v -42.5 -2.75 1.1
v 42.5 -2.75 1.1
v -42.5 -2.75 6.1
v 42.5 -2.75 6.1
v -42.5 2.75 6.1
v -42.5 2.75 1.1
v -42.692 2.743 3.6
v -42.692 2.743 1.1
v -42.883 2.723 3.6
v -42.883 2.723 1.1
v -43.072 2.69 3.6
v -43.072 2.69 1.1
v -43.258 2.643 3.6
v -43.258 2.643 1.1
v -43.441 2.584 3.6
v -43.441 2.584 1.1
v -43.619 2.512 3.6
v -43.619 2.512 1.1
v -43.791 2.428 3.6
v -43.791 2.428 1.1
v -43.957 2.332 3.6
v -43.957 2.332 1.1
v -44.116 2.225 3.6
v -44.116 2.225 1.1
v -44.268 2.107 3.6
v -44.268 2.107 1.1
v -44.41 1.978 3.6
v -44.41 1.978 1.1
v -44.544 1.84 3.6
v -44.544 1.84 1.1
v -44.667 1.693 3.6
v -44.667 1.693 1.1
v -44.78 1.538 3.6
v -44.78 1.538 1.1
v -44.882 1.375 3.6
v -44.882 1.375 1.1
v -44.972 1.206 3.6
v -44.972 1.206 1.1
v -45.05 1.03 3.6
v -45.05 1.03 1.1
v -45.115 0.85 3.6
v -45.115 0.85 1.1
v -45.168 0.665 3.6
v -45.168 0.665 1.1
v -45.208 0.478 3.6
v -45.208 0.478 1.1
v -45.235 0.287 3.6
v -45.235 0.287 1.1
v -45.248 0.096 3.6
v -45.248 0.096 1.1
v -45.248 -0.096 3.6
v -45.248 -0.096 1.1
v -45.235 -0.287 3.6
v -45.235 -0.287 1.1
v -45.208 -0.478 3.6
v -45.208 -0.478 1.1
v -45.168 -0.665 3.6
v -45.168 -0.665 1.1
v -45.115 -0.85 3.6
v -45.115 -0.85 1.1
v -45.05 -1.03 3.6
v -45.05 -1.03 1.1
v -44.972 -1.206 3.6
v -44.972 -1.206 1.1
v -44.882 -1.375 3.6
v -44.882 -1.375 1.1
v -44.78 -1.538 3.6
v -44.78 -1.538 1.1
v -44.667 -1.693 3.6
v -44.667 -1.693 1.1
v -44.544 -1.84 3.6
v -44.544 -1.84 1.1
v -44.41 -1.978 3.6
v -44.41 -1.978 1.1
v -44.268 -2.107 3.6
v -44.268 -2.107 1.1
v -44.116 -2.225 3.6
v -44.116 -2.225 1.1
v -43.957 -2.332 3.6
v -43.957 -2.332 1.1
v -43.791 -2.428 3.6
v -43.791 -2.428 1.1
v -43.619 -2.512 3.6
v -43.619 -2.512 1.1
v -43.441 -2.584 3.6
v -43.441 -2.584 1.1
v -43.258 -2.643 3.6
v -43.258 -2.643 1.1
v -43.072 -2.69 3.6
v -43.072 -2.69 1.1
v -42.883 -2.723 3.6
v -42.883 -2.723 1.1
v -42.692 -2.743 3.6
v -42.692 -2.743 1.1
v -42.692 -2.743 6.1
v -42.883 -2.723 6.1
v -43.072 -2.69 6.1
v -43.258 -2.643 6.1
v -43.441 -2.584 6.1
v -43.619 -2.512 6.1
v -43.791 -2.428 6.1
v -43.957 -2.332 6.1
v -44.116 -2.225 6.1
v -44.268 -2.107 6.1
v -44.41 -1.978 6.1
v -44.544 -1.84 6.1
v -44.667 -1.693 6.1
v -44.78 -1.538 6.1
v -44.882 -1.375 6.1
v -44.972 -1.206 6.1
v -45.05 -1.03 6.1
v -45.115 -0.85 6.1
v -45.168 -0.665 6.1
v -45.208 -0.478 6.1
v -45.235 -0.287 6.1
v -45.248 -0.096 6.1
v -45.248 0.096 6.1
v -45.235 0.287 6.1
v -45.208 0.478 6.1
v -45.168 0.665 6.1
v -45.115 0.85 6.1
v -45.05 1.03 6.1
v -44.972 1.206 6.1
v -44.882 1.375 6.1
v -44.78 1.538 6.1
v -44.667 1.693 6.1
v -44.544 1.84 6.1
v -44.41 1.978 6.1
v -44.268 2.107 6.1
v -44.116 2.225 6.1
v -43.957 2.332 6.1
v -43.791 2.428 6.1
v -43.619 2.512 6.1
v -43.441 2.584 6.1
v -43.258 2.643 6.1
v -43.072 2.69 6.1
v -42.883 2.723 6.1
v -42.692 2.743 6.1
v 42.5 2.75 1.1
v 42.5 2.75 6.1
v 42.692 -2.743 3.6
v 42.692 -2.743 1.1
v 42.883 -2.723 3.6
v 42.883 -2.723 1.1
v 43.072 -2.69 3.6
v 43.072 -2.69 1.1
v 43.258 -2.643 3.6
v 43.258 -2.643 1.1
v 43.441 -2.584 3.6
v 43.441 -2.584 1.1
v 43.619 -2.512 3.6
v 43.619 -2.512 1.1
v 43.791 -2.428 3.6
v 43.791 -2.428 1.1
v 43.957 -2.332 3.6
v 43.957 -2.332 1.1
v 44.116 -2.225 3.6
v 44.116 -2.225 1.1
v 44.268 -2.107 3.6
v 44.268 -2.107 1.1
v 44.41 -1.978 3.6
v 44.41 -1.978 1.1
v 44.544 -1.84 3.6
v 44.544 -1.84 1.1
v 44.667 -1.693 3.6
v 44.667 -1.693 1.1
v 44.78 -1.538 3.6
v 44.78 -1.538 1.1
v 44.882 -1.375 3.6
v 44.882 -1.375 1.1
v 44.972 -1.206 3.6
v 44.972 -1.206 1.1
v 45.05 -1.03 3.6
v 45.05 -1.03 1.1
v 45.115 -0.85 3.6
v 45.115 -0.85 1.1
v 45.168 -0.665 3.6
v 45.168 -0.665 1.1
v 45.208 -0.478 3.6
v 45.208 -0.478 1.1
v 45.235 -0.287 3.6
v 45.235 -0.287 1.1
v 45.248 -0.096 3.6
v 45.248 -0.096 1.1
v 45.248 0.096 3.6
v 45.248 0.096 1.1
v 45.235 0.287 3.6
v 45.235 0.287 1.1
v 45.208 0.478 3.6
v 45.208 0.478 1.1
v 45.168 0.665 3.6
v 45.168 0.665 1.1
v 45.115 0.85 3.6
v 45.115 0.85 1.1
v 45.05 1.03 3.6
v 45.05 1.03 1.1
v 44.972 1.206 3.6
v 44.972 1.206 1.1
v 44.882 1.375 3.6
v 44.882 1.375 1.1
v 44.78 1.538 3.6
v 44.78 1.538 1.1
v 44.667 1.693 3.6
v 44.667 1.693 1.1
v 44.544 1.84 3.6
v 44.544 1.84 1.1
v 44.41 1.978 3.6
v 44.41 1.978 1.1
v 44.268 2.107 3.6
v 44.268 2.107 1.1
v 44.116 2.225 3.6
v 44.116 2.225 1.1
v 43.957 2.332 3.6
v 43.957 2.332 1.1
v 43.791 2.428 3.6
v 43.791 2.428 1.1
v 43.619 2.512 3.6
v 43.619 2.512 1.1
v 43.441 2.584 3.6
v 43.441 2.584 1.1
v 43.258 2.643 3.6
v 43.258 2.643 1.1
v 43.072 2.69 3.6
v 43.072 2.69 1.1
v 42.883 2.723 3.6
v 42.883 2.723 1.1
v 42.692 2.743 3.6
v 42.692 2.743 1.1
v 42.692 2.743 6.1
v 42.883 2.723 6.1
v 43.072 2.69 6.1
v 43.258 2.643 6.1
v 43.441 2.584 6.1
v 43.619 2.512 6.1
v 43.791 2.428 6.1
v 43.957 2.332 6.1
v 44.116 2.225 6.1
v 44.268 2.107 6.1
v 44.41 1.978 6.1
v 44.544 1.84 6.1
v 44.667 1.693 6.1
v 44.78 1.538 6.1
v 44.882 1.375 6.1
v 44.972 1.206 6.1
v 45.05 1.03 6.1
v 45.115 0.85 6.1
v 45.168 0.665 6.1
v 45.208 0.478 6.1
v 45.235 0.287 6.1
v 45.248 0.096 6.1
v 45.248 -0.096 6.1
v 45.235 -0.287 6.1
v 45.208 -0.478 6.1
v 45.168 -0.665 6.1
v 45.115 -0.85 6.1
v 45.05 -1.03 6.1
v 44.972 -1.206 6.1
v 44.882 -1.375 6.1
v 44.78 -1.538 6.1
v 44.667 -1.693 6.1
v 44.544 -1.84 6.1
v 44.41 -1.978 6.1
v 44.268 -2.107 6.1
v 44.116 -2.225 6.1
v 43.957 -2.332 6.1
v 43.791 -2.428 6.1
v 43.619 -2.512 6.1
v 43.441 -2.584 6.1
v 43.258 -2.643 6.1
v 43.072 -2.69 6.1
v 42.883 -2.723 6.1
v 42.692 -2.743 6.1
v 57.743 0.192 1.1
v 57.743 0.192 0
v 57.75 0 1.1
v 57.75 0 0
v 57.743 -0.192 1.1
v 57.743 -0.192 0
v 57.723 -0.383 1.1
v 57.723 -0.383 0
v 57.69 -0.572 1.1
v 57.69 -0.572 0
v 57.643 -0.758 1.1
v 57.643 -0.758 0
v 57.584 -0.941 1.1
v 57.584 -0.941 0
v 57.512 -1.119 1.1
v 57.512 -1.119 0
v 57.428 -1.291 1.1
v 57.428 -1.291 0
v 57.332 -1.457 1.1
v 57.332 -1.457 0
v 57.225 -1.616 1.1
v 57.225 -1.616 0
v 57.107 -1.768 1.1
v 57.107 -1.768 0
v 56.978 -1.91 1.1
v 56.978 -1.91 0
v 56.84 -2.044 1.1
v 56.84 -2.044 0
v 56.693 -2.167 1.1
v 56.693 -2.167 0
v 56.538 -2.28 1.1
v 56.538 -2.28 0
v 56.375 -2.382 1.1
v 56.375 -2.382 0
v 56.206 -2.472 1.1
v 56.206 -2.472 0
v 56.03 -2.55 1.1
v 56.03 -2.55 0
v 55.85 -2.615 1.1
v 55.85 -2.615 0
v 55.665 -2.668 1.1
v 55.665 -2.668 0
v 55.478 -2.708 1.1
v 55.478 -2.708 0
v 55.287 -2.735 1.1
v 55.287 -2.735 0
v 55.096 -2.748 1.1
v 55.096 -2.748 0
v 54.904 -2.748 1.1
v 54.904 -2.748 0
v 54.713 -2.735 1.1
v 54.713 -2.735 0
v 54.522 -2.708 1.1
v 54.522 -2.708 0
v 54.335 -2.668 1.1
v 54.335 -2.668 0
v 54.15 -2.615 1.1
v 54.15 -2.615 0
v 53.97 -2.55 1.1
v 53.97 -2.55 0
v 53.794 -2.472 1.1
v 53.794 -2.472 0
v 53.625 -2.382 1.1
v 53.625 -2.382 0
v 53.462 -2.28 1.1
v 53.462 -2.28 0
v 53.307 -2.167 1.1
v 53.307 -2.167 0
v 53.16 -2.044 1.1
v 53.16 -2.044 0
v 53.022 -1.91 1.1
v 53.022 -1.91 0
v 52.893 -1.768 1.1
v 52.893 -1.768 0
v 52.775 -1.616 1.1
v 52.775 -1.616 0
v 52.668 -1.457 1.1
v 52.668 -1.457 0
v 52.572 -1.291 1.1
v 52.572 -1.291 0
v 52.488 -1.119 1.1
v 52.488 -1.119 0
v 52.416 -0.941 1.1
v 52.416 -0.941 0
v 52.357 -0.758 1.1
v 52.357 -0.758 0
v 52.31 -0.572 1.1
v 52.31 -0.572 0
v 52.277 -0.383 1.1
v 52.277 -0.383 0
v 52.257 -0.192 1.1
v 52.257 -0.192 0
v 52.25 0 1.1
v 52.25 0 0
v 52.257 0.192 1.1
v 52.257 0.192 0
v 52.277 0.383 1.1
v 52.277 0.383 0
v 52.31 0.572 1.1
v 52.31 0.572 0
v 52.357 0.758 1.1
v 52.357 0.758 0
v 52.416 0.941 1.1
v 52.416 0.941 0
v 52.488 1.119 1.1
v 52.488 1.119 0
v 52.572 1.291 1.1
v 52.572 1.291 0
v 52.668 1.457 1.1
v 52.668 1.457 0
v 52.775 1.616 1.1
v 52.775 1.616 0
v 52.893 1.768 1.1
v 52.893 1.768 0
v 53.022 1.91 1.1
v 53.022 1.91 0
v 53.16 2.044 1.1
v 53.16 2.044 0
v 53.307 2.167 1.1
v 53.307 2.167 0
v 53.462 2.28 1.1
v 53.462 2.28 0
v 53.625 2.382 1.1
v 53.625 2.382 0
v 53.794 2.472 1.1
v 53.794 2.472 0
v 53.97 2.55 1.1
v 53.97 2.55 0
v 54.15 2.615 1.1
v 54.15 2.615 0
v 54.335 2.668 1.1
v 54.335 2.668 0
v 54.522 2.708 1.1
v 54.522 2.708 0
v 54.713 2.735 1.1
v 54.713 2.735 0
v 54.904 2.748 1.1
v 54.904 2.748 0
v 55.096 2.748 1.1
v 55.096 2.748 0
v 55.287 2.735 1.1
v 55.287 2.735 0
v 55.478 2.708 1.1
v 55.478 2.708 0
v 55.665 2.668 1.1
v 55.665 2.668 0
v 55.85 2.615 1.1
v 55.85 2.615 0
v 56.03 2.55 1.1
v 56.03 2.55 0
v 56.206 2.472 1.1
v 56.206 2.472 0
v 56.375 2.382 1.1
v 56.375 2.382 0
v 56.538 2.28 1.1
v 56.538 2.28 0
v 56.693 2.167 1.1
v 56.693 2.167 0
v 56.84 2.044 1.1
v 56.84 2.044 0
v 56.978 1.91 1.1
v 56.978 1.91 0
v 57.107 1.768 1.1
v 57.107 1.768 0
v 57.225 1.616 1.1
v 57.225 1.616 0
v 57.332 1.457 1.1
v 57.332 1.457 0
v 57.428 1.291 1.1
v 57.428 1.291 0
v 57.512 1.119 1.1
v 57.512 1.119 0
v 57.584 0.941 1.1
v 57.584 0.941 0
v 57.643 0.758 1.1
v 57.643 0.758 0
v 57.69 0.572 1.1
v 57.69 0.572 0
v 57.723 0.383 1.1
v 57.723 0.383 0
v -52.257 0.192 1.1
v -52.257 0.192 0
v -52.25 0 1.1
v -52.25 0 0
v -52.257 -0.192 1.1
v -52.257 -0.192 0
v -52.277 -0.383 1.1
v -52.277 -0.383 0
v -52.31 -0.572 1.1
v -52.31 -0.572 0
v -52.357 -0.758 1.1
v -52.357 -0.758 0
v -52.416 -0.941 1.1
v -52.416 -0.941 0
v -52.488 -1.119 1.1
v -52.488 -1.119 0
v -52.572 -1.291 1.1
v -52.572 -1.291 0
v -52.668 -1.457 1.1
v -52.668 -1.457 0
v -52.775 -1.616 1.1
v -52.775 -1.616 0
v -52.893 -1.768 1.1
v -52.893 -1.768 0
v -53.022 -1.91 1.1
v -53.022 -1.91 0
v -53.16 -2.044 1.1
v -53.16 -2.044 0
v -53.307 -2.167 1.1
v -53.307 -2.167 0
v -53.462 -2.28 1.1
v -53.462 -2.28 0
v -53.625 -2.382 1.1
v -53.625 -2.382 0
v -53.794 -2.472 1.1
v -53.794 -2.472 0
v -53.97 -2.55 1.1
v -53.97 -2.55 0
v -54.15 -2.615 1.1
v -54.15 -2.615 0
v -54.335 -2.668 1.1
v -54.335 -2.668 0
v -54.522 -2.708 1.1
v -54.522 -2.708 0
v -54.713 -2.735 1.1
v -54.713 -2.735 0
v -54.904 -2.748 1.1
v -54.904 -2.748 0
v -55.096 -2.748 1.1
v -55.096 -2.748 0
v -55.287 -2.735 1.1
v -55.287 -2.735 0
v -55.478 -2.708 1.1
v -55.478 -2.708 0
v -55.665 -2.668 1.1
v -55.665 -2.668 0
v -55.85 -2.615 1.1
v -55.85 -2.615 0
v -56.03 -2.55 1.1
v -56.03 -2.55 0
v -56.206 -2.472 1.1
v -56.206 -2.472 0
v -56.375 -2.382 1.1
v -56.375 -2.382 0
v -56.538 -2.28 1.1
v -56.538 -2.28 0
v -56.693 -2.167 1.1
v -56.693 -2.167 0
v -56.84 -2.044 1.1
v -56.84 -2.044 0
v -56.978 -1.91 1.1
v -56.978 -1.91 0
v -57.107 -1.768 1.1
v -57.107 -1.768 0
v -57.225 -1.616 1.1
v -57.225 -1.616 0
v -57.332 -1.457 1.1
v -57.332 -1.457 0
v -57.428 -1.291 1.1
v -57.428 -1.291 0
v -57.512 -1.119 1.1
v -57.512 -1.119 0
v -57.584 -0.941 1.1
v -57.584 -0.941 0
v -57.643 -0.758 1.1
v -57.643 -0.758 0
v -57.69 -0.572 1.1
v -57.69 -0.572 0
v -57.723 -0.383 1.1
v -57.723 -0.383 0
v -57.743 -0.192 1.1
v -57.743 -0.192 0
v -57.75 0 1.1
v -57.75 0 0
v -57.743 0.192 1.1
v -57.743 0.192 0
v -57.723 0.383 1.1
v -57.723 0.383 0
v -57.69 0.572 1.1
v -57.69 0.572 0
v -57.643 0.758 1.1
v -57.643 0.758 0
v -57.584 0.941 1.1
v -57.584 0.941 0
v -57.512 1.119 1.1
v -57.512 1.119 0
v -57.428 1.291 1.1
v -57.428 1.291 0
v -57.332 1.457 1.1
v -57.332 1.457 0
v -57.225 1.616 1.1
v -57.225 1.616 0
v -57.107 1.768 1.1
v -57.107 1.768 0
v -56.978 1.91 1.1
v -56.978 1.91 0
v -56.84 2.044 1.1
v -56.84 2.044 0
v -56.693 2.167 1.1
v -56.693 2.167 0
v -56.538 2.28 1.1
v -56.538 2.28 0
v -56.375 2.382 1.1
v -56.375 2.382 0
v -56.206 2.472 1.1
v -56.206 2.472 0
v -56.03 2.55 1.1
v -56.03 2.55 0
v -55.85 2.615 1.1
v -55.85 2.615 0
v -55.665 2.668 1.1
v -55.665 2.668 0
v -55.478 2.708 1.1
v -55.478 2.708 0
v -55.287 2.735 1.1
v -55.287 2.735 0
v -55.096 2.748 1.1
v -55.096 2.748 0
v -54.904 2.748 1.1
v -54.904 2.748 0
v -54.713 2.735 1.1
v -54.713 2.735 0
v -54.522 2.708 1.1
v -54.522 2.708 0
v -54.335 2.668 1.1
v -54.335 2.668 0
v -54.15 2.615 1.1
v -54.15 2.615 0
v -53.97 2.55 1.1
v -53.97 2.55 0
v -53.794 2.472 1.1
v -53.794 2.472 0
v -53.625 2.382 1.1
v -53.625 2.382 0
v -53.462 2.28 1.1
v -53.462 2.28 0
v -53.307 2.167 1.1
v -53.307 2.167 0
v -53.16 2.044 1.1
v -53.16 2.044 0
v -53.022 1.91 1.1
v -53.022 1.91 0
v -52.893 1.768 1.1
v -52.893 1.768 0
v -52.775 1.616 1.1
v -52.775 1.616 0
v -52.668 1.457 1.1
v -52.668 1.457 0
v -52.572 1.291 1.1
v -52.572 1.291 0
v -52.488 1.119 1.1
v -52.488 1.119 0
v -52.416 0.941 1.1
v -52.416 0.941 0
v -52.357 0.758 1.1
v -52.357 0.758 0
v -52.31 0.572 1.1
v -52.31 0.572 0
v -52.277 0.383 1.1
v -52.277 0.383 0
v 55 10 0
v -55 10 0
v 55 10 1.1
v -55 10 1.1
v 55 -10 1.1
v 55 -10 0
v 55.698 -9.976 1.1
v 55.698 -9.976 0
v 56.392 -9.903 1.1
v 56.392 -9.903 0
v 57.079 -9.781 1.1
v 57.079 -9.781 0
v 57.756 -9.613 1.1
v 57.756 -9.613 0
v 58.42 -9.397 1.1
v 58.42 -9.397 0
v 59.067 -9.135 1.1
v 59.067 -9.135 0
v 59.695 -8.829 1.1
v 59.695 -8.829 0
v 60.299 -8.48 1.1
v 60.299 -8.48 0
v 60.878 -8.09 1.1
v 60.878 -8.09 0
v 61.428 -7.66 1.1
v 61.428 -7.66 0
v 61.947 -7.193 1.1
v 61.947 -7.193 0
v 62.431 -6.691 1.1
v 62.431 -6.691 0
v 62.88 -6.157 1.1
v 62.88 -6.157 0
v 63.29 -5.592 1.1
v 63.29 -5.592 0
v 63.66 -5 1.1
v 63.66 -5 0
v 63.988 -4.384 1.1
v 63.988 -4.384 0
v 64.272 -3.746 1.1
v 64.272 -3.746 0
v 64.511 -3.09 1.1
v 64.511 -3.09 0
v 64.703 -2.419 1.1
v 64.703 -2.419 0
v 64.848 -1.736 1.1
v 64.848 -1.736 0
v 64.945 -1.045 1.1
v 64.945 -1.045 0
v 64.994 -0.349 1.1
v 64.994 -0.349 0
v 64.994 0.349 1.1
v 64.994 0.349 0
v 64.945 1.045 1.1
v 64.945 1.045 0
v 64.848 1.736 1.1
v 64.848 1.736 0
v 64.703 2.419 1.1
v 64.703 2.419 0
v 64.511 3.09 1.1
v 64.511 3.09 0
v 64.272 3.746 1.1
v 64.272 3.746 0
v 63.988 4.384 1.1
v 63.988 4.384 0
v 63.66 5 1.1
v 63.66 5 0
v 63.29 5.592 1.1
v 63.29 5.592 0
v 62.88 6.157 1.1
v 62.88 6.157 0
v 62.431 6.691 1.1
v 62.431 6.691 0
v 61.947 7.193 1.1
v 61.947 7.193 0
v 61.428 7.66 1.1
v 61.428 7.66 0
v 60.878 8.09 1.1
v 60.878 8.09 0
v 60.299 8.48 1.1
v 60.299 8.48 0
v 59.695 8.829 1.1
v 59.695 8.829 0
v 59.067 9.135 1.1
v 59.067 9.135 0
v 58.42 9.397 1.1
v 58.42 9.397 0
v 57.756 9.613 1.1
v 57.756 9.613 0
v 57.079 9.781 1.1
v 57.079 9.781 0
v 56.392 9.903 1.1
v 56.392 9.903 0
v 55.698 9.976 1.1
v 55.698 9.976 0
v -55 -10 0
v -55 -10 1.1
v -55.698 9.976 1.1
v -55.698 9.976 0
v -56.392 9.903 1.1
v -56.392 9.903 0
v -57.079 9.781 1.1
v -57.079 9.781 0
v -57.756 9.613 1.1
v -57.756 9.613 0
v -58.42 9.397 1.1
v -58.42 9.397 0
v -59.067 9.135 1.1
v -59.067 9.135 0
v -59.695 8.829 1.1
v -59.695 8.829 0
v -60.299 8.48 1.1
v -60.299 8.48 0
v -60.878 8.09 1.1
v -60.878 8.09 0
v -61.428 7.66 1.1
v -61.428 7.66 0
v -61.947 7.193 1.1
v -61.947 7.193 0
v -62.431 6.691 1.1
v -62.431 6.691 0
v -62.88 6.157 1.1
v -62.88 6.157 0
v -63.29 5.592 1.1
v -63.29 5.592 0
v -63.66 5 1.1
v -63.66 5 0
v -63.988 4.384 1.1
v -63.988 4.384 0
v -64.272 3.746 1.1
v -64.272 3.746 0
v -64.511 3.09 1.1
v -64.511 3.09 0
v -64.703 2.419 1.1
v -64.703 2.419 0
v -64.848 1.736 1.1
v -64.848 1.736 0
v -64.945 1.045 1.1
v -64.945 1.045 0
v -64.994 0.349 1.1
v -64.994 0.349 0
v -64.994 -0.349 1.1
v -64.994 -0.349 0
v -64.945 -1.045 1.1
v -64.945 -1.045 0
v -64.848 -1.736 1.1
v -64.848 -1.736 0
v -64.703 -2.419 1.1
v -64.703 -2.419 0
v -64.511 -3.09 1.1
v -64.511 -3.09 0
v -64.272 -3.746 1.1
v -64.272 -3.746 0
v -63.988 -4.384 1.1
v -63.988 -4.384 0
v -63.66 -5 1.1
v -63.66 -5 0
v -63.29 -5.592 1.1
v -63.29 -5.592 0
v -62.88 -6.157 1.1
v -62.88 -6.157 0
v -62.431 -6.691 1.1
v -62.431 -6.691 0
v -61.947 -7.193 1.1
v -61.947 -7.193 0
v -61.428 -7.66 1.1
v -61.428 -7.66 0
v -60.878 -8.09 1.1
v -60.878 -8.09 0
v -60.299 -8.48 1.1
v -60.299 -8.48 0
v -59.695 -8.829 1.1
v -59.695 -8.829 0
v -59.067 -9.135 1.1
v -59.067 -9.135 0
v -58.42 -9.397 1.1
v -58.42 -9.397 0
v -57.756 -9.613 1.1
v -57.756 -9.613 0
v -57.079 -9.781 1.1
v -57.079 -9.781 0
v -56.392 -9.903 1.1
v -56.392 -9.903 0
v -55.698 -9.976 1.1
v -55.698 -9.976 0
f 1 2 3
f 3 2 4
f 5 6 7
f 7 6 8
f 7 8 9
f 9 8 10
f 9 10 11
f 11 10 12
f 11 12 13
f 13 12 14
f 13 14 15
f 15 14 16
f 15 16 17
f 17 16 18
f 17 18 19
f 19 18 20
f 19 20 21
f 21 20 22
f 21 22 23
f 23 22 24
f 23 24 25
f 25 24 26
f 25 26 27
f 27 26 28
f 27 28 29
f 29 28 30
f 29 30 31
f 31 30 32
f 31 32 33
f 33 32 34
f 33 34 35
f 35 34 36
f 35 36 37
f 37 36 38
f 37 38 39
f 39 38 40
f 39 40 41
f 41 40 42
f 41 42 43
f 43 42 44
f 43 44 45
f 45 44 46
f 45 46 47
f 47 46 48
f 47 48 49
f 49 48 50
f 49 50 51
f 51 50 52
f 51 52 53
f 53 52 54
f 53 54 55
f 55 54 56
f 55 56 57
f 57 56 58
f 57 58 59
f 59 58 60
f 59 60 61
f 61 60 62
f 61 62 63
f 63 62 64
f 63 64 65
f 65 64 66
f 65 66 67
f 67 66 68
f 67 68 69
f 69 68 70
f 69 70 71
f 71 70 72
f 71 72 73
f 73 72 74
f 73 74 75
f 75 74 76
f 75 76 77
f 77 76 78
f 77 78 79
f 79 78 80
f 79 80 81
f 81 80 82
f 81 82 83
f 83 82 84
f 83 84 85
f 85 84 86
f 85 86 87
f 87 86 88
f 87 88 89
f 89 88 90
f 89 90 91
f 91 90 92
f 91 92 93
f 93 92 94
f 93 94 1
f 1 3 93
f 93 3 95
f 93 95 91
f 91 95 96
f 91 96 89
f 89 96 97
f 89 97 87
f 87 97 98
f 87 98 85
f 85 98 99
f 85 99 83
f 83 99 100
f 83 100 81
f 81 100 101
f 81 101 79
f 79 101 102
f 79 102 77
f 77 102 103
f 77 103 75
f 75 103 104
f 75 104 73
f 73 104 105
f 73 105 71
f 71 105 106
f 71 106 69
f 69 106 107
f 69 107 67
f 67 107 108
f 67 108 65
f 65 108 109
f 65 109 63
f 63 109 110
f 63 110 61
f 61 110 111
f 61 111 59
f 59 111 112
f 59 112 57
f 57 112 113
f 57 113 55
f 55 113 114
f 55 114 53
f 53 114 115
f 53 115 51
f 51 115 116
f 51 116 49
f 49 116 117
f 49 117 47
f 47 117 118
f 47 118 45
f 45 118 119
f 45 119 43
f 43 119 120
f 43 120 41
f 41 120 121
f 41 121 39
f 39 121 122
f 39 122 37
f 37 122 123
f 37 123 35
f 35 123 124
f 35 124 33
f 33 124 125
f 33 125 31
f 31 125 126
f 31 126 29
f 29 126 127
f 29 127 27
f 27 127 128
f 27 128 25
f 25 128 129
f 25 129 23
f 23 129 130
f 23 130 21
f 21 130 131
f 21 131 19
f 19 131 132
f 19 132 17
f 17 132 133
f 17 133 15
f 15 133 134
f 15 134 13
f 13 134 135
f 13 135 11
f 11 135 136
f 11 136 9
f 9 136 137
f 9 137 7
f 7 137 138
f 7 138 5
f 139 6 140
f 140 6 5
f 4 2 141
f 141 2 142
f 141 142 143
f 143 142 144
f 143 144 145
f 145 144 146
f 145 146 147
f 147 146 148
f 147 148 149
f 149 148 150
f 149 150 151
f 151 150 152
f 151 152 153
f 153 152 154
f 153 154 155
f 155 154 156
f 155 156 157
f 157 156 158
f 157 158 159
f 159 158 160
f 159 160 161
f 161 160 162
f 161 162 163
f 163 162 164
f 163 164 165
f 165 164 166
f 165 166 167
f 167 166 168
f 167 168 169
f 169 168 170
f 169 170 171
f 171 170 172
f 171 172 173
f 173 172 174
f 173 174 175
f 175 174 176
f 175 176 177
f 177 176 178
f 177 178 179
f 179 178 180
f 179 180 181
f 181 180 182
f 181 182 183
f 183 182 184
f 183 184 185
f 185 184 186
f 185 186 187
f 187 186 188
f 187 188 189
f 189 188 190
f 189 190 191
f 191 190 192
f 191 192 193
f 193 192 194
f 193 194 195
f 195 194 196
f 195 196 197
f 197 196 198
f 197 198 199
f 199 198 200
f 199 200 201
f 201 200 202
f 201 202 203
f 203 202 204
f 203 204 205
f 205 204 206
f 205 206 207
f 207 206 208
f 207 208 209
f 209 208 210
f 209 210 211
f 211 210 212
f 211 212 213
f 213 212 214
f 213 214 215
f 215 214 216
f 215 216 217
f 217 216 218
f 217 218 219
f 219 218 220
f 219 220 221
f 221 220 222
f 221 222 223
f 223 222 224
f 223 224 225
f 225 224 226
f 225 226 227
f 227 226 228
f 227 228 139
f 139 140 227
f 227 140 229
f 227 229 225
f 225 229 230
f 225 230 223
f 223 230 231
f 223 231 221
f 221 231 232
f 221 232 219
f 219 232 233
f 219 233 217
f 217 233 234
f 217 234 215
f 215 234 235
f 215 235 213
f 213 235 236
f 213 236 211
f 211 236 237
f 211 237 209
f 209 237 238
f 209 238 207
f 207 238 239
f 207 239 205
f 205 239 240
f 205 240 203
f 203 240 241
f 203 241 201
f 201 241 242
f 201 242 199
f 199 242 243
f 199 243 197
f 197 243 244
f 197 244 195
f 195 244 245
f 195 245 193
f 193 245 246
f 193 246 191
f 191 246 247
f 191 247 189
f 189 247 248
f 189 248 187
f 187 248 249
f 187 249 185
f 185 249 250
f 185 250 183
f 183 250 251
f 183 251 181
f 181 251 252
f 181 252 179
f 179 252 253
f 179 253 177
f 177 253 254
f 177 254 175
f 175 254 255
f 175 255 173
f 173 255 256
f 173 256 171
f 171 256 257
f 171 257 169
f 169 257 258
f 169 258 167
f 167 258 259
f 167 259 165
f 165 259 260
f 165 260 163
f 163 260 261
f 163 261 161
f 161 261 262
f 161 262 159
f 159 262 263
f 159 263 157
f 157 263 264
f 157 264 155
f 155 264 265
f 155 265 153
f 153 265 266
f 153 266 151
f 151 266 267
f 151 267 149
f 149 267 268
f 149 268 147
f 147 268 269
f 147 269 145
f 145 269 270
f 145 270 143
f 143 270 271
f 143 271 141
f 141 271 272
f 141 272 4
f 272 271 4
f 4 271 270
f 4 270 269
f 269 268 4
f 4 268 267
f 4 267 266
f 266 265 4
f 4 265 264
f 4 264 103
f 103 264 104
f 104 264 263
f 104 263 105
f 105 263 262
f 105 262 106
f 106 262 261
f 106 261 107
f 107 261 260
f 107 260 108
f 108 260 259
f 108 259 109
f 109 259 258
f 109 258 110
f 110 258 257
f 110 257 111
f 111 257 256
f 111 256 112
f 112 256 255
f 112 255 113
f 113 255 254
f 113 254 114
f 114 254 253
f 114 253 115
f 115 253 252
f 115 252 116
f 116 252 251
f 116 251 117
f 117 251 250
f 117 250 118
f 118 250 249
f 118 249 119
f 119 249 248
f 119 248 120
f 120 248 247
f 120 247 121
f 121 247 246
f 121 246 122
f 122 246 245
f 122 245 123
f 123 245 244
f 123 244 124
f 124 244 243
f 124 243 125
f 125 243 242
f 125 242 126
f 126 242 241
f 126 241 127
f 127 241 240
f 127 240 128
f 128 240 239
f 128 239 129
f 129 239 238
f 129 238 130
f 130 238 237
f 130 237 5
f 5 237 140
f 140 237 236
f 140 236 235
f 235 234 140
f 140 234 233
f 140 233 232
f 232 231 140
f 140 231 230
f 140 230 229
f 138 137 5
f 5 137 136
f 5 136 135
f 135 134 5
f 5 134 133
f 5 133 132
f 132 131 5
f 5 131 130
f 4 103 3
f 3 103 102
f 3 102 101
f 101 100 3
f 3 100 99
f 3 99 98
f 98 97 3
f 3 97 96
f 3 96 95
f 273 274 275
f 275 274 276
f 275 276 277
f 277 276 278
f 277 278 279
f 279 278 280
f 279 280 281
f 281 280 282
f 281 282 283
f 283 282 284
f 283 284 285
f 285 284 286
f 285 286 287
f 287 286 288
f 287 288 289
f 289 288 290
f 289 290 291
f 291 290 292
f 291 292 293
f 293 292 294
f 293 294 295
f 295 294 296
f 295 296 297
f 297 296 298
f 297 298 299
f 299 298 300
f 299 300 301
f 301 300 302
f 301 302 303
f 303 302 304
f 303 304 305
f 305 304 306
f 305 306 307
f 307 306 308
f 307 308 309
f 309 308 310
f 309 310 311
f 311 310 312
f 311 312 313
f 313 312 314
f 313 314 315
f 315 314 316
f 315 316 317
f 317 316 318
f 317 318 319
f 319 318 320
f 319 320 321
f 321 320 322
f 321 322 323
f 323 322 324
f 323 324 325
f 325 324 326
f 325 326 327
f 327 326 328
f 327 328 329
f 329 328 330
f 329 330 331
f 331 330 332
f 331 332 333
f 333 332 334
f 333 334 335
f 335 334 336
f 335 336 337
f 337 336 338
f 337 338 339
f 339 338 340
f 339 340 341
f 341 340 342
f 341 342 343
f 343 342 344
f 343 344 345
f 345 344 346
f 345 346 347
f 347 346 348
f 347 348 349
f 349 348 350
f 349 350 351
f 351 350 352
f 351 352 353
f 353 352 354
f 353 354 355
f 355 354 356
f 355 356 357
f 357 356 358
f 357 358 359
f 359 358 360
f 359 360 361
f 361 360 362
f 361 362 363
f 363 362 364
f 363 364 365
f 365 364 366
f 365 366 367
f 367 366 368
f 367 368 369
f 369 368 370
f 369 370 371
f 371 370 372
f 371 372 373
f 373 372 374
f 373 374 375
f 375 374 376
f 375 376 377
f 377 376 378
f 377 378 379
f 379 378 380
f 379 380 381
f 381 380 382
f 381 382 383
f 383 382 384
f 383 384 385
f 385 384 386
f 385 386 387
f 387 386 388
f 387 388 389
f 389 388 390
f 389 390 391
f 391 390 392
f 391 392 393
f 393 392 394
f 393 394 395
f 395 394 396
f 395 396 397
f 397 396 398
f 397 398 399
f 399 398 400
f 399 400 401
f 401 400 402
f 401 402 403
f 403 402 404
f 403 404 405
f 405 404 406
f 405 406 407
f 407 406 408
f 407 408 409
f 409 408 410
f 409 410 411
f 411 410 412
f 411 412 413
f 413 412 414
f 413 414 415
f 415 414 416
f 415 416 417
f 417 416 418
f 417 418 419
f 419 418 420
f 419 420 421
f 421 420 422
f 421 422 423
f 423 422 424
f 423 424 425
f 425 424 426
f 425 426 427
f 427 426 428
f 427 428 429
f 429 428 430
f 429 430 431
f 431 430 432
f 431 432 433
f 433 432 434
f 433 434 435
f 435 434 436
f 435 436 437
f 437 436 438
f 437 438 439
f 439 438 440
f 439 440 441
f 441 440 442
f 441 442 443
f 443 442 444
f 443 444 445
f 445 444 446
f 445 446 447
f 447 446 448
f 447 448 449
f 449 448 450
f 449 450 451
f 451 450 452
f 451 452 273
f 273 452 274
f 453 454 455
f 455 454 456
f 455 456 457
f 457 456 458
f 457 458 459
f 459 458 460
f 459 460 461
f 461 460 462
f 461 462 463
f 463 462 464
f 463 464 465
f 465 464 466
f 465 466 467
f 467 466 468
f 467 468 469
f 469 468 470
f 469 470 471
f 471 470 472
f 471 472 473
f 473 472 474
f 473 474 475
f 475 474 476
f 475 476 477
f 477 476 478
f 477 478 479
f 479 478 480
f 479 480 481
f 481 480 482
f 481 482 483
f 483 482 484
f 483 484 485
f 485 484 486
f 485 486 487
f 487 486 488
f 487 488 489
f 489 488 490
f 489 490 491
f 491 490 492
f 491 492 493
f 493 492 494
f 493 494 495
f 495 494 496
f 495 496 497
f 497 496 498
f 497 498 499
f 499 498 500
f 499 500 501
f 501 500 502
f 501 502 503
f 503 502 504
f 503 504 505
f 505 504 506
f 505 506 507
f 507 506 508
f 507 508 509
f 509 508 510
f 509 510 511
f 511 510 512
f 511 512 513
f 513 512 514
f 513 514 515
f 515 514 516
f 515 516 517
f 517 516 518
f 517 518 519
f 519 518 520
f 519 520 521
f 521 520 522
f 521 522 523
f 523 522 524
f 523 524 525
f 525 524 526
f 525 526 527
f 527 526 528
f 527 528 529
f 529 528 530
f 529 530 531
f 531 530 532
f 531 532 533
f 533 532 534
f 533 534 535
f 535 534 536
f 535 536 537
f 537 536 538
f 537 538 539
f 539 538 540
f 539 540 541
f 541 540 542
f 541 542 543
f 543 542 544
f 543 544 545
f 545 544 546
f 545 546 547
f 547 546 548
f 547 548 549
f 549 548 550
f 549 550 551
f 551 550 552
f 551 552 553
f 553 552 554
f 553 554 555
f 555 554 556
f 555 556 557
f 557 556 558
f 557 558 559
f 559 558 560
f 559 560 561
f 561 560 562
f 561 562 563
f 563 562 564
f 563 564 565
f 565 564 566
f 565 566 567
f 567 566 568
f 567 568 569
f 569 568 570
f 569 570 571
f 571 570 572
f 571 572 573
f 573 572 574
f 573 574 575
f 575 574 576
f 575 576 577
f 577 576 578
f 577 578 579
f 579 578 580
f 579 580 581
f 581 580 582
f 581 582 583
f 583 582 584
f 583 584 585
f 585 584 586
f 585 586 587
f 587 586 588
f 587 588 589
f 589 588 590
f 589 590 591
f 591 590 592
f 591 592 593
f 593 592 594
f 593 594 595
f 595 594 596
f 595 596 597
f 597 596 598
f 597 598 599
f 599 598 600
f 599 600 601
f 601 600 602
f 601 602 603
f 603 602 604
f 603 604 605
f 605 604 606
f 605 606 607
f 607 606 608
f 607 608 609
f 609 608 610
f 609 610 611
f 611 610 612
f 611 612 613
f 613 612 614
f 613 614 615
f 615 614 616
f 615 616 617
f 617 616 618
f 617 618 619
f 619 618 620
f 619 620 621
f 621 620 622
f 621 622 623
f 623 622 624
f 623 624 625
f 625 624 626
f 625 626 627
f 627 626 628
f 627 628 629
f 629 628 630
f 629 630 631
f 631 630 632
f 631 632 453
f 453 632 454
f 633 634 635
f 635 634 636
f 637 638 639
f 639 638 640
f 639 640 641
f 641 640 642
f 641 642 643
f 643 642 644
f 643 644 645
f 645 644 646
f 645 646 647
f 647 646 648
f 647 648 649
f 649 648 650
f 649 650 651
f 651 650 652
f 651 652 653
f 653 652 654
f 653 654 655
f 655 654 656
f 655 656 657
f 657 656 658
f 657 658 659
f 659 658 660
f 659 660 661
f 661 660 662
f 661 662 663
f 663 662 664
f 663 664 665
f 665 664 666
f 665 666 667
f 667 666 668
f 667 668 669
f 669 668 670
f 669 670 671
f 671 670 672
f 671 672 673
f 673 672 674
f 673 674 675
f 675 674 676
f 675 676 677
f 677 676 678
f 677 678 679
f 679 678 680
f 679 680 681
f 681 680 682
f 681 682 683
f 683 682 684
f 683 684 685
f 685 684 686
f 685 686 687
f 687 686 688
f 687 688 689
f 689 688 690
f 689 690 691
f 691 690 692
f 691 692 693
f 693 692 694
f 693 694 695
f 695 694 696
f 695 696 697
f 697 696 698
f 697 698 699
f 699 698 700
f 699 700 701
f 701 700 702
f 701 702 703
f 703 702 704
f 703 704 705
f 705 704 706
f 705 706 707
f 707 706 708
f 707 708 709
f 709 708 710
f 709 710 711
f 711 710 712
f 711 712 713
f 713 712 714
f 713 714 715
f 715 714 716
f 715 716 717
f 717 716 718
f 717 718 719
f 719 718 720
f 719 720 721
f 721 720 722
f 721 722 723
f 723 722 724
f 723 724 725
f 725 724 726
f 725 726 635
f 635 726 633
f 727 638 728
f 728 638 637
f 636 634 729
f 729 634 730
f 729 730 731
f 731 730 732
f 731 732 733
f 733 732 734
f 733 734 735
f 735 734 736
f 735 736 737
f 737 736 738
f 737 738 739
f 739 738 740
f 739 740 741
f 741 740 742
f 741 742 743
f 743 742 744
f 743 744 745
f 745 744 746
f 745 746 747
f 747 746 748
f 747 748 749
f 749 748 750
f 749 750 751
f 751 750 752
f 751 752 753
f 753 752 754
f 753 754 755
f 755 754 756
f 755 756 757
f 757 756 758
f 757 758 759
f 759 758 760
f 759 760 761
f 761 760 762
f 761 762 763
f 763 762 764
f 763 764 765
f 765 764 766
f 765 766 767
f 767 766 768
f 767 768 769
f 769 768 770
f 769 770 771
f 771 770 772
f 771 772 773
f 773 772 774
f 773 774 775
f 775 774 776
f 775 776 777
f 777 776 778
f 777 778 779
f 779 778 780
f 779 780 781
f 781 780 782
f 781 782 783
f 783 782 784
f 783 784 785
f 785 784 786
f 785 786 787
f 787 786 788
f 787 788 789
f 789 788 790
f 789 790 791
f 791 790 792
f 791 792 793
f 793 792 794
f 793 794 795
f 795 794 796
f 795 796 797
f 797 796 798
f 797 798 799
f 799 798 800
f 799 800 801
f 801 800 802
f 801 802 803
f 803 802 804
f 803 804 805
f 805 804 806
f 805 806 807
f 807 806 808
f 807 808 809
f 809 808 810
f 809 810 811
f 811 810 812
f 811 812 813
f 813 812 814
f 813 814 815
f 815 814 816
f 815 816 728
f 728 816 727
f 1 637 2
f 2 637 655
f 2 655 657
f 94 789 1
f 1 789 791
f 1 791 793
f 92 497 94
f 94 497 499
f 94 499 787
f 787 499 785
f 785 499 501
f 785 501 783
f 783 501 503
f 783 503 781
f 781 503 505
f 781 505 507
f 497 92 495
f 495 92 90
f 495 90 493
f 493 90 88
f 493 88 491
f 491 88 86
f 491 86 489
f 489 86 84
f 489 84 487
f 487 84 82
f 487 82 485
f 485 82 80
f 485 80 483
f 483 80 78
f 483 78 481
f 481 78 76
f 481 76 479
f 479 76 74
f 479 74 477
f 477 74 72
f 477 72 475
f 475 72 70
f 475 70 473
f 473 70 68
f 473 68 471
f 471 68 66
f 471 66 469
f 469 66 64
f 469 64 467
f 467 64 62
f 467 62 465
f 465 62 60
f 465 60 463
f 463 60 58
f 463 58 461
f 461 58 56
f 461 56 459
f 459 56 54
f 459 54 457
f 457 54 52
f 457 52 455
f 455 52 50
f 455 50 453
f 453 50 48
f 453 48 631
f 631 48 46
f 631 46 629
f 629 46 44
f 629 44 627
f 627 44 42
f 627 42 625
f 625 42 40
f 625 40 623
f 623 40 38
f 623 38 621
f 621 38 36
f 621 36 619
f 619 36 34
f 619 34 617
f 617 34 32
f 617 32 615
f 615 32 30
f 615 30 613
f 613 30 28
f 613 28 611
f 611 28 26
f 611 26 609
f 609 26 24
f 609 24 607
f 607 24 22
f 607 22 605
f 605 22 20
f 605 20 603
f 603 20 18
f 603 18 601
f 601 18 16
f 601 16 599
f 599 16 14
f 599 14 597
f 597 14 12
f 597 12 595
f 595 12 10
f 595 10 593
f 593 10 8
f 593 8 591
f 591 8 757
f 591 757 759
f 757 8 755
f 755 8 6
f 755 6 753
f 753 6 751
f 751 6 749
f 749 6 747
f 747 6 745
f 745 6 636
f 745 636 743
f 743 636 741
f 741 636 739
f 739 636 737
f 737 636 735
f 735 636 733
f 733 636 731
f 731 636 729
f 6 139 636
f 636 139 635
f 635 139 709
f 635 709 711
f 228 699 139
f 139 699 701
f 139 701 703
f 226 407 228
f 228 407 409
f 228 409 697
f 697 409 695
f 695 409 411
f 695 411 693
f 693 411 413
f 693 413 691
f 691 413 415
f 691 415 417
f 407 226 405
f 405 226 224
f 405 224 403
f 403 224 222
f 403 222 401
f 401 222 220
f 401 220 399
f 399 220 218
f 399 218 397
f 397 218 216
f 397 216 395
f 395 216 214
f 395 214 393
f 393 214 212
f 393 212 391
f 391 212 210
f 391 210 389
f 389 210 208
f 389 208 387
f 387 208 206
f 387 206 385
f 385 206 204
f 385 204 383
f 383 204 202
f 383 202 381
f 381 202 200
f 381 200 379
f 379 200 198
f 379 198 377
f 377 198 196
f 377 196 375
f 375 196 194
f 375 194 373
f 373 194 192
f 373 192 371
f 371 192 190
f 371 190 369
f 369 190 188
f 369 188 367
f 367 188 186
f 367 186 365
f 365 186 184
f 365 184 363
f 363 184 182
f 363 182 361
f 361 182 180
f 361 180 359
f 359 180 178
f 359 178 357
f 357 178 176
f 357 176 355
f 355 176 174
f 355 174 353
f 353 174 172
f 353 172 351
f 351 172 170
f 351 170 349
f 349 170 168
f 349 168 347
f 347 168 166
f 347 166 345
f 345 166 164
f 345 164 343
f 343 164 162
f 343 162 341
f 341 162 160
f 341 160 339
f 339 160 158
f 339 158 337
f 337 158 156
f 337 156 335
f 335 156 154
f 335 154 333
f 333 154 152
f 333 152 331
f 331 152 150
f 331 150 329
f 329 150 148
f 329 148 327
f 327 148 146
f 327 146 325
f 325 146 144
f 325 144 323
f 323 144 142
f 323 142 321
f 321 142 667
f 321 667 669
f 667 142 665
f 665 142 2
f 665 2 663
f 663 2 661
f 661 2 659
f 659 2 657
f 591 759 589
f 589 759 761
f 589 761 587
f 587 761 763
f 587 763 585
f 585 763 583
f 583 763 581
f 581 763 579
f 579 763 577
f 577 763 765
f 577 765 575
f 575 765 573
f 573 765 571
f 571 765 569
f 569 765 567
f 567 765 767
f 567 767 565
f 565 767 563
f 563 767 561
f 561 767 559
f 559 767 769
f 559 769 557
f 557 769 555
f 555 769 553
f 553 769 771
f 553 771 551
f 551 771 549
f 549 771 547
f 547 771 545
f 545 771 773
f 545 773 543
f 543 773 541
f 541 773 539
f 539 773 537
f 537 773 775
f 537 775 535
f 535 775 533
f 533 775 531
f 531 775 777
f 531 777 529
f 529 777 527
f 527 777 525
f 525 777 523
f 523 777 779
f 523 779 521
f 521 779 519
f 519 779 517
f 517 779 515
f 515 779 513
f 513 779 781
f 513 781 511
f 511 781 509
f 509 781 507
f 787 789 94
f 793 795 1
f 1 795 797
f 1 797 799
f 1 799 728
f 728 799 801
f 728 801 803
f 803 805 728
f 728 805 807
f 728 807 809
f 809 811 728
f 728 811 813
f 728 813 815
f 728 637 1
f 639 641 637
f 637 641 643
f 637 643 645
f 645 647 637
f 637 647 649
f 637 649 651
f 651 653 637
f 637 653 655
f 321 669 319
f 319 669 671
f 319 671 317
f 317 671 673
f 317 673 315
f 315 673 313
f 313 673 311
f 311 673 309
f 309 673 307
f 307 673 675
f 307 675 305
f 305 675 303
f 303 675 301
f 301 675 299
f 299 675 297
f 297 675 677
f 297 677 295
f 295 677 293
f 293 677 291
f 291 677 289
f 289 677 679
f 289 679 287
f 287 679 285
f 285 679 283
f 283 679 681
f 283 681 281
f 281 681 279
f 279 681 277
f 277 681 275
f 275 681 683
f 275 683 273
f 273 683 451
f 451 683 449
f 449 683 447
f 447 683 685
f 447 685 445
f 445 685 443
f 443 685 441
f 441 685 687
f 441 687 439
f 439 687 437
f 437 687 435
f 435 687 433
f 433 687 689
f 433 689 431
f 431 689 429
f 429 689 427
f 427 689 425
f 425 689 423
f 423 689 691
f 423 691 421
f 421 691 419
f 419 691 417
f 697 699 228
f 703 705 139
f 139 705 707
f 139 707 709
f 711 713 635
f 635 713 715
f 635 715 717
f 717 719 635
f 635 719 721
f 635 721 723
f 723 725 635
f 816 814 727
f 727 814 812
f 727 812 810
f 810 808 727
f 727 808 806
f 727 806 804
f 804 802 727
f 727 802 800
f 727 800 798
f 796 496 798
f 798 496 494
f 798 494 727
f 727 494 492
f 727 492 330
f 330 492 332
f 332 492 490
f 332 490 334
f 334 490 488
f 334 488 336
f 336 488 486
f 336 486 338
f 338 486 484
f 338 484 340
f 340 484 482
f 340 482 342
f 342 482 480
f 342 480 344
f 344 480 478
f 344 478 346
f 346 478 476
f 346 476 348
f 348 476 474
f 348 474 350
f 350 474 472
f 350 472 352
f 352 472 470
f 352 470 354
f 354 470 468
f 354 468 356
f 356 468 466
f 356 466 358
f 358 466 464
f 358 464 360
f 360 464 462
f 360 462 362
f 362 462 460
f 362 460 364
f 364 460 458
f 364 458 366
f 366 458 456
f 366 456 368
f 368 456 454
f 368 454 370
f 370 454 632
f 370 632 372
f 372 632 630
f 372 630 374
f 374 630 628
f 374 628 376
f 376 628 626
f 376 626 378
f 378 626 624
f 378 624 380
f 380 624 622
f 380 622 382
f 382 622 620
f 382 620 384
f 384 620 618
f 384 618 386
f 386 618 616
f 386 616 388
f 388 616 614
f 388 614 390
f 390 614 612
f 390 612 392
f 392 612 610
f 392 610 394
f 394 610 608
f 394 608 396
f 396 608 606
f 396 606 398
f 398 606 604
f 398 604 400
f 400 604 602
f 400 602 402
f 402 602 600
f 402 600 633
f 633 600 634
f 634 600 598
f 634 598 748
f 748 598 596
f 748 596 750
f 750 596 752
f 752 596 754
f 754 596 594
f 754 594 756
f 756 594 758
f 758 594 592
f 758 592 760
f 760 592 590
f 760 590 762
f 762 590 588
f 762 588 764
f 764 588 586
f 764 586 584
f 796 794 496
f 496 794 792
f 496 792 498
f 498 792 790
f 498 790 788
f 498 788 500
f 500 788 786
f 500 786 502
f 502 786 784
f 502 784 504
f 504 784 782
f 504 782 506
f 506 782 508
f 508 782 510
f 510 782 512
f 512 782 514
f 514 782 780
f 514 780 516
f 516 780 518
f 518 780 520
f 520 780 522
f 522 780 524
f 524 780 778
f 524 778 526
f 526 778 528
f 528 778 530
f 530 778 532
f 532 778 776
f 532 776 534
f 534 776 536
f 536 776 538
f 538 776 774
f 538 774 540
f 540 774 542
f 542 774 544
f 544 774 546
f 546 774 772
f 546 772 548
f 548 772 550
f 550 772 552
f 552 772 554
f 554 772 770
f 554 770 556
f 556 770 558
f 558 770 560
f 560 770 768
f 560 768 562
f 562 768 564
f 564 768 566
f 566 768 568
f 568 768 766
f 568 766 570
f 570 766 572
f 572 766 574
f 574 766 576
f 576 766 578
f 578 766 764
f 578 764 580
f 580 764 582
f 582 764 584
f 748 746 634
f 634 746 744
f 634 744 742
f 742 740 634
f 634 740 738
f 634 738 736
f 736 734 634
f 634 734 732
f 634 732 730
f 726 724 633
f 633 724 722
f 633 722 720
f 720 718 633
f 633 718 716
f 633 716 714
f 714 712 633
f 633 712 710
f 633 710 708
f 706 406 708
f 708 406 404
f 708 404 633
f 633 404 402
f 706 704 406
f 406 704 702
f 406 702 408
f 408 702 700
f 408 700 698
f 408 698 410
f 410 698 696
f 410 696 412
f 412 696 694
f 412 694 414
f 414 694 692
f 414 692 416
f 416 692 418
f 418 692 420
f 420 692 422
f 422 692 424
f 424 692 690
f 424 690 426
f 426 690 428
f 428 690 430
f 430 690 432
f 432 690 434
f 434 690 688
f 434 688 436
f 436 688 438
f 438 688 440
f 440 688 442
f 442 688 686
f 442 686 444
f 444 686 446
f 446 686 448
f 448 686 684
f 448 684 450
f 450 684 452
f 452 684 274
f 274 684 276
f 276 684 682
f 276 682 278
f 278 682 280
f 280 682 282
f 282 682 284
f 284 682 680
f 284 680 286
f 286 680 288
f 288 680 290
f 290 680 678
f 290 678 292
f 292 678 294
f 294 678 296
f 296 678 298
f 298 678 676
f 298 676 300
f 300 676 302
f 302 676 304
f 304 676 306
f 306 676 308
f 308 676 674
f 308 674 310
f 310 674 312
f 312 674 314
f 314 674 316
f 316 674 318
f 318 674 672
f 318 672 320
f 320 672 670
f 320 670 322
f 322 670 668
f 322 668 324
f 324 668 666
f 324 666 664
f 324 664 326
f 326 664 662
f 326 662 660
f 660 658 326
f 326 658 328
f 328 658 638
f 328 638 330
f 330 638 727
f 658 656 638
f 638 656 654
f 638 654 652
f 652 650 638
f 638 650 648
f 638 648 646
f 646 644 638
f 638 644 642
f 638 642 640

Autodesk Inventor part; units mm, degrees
ref_plane "YZ Plane" through (0, 0, 0) normal (1, 0, 0) x (0, 1, 0)
ref_plane "XZ Plane" through (0, 0, 0) normal (0, 1, 0) x (-1, 0, 0)
ref_plane "XY Plane" through (0, 0, 0) normal (0, 0, 1) x (1, 0, 0)
sketch "Sketch1" plane through (0, 0, 0) normal (0, 0, 1) x (1, 0, 0)
  line L0 (-55, 0) -> (55, 0) construction
  line L1 (-55, -10) -> (55, -10)
  line L2 (55, 10) -> (-55, 10)
  arc A0 (-55, 10) -> (-55, -10) centre (-55, 0) ccw
  arc A1 (55, -10) -> (55, 10) centre (55, 0) ccw
  circle A2 centre (-55, 0) radius 2.75
  circle A3 centre (55, 0) radius 2.75
  point P0 (0, 0)
  dimension "d0" = 10
  dimension "d1" = 110
  dimension "d2" = 5.5
extrude "Extrusion1" add sketch "Sketch1" along normal blind 1.1
sketch "Sketch2" plane through (0, 0, 1.1) normal (0, 0, 1) x (1, 0, 0)
  line L0 (42.5, 0) -> (-42.5, 0) construction
  line L1 (42.5, 2.75) -> (-42.5, 2.75)
  line L2 (-42.5, -2.75) -> (42.5, -2.75)
  arc A0 (42.5, -2.75) -> (42.5, 2.75) centre (42.5, 0) ccw
  arc A1 (-42.5, 2.75) -> (-42.5, -2.75) centre (-42.5, 0) ccw
  point P0 (0, 0)
  dimension "d5" = 5.5
  dimension "d6" = 85
extrude "Extrusion2" add sketch "Sketch2" along normal blind 5
properties part number "OldWankelBracket"
